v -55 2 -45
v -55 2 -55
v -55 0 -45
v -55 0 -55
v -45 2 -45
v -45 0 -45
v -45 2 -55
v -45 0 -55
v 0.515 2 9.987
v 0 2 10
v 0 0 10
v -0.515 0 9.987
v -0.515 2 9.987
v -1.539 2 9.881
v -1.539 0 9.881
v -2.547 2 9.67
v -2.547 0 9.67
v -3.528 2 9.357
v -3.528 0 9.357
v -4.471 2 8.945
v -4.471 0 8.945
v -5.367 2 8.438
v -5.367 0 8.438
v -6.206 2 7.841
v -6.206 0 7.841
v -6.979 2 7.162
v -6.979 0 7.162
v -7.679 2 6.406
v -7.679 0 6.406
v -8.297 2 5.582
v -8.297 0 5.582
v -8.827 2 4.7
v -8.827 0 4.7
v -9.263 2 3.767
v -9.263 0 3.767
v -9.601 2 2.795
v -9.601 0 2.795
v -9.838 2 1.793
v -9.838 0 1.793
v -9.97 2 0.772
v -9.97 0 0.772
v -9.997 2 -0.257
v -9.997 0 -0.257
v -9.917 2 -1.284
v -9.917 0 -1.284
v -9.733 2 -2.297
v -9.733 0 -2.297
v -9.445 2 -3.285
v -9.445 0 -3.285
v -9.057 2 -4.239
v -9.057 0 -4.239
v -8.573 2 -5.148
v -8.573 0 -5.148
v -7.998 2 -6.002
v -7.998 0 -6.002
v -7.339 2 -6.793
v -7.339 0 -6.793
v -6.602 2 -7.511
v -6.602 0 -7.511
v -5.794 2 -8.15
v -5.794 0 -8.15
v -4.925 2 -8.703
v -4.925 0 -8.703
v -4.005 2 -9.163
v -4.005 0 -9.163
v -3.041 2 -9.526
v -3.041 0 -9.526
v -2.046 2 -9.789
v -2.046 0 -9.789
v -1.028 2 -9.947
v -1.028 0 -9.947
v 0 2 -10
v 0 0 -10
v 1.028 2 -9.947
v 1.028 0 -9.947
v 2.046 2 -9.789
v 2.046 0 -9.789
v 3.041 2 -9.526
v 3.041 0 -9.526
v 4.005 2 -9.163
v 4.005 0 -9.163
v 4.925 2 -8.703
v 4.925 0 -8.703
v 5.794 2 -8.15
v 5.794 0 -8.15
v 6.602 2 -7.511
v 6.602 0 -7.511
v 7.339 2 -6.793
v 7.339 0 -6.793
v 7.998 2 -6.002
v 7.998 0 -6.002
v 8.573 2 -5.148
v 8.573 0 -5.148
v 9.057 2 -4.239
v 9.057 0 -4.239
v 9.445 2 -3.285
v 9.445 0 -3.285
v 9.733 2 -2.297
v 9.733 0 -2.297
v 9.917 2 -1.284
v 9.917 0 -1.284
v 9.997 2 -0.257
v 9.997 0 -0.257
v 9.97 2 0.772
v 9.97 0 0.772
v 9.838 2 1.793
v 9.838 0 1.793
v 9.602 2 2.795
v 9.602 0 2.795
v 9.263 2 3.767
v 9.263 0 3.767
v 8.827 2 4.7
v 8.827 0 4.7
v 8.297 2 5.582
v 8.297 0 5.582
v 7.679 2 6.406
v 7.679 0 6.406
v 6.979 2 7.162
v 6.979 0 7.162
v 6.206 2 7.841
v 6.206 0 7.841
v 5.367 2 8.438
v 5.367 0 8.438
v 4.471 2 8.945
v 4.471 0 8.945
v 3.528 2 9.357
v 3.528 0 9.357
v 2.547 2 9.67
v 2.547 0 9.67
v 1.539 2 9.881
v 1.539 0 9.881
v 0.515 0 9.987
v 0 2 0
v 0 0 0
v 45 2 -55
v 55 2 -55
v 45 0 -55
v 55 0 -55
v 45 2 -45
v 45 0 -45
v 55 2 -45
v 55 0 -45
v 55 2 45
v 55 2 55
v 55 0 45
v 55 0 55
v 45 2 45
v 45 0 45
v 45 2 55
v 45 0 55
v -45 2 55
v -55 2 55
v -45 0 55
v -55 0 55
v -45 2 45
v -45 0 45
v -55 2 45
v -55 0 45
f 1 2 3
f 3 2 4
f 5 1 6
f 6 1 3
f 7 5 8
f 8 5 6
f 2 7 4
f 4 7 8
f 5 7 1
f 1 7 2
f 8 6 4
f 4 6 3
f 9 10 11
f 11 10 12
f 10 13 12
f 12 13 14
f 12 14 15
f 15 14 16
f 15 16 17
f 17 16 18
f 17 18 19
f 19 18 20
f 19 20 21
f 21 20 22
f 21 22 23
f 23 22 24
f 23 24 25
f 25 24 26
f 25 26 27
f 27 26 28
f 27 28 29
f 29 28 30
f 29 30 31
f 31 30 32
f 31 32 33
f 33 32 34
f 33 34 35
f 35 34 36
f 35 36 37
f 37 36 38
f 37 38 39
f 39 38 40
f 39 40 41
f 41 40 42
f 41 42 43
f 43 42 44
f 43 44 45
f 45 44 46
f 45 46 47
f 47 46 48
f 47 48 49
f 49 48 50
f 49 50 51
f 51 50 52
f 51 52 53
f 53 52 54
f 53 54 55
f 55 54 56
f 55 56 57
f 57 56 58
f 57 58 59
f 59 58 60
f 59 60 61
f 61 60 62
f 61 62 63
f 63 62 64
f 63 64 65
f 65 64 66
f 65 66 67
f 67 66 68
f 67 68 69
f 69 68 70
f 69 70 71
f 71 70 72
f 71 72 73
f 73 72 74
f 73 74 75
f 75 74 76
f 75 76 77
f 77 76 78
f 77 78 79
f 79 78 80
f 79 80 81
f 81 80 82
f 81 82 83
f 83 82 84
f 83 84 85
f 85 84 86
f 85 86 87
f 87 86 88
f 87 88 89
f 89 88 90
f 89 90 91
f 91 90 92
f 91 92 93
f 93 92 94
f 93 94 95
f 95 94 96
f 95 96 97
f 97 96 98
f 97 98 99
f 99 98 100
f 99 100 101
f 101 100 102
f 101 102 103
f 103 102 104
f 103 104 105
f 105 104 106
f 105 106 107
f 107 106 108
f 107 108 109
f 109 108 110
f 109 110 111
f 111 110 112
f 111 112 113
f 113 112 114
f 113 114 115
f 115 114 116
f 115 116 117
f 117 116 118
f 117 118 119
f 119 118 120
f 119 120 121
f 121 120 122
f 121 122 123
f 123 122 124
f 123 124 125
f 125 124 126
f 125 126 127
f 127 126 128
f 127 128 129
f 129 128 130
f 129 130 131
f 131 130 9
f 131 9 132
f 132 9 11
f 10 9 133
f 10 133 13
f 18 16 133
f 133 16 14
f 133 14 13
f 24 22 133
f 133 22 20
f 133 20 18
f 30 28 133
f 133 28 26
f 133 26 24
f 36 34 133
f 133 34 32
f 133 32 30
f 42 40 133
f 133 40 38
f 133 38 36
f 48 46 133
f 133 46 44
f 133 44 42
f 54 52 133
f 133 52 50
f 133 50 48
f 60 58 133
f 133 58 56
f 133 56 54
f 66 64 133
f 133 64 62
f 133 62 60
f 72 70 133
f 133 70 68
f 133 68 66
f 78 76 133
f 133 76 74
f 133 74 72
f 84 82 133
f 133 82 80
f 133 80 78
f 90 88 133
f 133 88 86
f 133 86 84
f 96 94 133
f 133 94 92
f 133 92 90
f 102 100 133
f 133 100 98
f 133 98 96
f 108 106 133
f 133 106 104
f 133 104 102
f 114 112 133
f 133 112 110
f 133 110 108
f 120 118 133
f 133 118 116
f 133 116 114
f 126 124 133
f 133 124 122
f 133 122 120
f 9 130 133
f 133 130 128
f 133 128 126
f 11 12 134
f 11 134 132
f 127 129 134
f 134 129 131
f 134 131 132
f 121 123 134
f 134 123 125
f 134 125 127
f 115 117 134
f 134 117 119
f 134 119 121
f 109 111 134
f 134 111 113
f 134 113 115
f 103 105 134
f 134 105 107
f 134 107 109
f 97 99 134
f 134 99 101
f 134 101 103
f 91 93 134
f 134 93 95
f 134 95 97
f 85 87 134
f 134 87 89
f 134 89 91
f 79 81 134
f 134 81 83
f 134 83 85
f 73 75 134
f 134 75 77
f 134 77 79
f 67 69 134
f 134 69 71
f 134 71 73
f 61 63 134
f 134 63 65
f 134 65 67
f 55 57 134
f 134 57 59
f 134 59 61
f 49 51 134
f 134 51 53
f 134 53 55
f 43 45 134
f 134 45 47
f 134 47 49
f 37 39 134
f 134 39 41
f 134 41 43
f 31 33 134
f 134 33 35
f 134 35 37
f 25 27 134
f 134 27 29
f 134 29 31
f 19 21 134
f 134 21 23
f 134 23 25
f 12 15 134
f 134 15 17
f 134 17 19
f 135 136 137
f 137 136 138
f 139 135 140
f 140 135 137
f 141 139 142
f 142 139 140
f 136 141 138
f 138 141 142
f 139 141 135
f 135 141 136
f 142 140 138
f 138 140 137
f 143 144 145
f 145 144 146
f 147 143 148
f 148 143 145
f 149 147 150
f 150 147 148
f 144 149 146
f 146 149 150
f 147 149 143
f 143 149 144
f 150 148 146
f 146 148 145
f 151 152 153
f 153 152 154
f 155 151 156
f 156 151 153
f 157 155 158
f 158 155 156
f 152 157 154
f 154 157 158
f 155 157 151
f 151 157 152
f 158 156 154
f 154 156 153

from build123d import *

# Parameters (mm, degrees)
SKIZZE1_R                         = 10
AUFSATZ_LINEAR_AUSTRAGEN1_DEPTH   = 2
SKIZZE1_W                         = 10
SKIZZE1_H                         = 10
AUFSATZ_LINEAR_AUSTRAGEN1_2_DEPTH = 2
AUFSATZ_LINEAR_AUSTRAGEN1_3_DEPTH = 2
AUFSATZ_LINEAR_AUSTRAGEN1_4_DEPTH = 2
AUFSATZ_LINEAR_AUSTRAGEN1_5_DEPTH = 2


with BuildPart() as part:
    # Skizze1 → Aufsatz-Linear austragen1 (new body)
    with BuildSketch(Plane(origin=(0, 0, 0), x_dir=(1, 0, 0), z_dir=(0, 1, 0))):
        with Locations(Location((0, 0, 0), (0, 0, 270))):
            Circle(SKIZZE1_R)
    extrude(amount=AUFSATZ_LINEAR_AUSTRAGEN1_DEPTH)


with BuildPart() as body_2:
    # Skizze1 → Aufsatz-Linear austragen1 2 (new body)
    with BuildSketch(Plane(origin=(0, 0, 0), x_dir=(1, 0, 0), z_dir=(0, 1, 0))):
        with Locations((50, 50)):
            Rectangle(SKIZZE1_W, SKIZZE1_H)
    extrude(amount=AUFSATZ_LINEAR_AUSTRAGEN1_2_DEPTH)


with BuildPart() as body_3:
    # Skizze1 → Aufsatz-Linear austragen1 3 (new body)
    with BuildSketch(Plane(origin=(0, 0, 0), x_dir=(1, 0, 0), z_dir=(0, 1, 0))):
        with Locations((-50, 50)):
            Rectangle(SKIZZE1_W, SKIZZE1_H)
    extrude(amount=AUFSATZ_LINEAR_AUSTRAGEN1_3_DEPTH)


with BuildPart() as body_4:
    # Skizze1 → Aufsatz-Linear austragen1 4 (new body)
    with BuildSketch(Plane(origin=(0, 0, 0), x_dir=(1, 0, 0), z_dir=(0, 1, 0))):
        with Locations((50, -50)):
            Rectangle(SKIZZE1_W, SKIZZE1_H)
    extrude(amount=AUFSATZ_LINEAR_AUSTRAGEN1_4_DEPTH)


with BuildPart() as body_5:
    # Skizze1 → Aufsatz-Linear austragen1 5 (new body)
    with BuildSketch(Plane(origin=(0, 0, 0), x_dir=(1, 0, 0), z_dir=(0, 1, 0))):
        with Locations((-50, -50)):
            Rectangle(SKIZZE1_W, SKIZZE1_H)
    extrude(amount=AUFSATZ_LINEAR_AUSTRAGEN1_5_DEPTH)


solid = Compound([part.part, body_2.part, body_3.part, body_4.part, body_5.part])
